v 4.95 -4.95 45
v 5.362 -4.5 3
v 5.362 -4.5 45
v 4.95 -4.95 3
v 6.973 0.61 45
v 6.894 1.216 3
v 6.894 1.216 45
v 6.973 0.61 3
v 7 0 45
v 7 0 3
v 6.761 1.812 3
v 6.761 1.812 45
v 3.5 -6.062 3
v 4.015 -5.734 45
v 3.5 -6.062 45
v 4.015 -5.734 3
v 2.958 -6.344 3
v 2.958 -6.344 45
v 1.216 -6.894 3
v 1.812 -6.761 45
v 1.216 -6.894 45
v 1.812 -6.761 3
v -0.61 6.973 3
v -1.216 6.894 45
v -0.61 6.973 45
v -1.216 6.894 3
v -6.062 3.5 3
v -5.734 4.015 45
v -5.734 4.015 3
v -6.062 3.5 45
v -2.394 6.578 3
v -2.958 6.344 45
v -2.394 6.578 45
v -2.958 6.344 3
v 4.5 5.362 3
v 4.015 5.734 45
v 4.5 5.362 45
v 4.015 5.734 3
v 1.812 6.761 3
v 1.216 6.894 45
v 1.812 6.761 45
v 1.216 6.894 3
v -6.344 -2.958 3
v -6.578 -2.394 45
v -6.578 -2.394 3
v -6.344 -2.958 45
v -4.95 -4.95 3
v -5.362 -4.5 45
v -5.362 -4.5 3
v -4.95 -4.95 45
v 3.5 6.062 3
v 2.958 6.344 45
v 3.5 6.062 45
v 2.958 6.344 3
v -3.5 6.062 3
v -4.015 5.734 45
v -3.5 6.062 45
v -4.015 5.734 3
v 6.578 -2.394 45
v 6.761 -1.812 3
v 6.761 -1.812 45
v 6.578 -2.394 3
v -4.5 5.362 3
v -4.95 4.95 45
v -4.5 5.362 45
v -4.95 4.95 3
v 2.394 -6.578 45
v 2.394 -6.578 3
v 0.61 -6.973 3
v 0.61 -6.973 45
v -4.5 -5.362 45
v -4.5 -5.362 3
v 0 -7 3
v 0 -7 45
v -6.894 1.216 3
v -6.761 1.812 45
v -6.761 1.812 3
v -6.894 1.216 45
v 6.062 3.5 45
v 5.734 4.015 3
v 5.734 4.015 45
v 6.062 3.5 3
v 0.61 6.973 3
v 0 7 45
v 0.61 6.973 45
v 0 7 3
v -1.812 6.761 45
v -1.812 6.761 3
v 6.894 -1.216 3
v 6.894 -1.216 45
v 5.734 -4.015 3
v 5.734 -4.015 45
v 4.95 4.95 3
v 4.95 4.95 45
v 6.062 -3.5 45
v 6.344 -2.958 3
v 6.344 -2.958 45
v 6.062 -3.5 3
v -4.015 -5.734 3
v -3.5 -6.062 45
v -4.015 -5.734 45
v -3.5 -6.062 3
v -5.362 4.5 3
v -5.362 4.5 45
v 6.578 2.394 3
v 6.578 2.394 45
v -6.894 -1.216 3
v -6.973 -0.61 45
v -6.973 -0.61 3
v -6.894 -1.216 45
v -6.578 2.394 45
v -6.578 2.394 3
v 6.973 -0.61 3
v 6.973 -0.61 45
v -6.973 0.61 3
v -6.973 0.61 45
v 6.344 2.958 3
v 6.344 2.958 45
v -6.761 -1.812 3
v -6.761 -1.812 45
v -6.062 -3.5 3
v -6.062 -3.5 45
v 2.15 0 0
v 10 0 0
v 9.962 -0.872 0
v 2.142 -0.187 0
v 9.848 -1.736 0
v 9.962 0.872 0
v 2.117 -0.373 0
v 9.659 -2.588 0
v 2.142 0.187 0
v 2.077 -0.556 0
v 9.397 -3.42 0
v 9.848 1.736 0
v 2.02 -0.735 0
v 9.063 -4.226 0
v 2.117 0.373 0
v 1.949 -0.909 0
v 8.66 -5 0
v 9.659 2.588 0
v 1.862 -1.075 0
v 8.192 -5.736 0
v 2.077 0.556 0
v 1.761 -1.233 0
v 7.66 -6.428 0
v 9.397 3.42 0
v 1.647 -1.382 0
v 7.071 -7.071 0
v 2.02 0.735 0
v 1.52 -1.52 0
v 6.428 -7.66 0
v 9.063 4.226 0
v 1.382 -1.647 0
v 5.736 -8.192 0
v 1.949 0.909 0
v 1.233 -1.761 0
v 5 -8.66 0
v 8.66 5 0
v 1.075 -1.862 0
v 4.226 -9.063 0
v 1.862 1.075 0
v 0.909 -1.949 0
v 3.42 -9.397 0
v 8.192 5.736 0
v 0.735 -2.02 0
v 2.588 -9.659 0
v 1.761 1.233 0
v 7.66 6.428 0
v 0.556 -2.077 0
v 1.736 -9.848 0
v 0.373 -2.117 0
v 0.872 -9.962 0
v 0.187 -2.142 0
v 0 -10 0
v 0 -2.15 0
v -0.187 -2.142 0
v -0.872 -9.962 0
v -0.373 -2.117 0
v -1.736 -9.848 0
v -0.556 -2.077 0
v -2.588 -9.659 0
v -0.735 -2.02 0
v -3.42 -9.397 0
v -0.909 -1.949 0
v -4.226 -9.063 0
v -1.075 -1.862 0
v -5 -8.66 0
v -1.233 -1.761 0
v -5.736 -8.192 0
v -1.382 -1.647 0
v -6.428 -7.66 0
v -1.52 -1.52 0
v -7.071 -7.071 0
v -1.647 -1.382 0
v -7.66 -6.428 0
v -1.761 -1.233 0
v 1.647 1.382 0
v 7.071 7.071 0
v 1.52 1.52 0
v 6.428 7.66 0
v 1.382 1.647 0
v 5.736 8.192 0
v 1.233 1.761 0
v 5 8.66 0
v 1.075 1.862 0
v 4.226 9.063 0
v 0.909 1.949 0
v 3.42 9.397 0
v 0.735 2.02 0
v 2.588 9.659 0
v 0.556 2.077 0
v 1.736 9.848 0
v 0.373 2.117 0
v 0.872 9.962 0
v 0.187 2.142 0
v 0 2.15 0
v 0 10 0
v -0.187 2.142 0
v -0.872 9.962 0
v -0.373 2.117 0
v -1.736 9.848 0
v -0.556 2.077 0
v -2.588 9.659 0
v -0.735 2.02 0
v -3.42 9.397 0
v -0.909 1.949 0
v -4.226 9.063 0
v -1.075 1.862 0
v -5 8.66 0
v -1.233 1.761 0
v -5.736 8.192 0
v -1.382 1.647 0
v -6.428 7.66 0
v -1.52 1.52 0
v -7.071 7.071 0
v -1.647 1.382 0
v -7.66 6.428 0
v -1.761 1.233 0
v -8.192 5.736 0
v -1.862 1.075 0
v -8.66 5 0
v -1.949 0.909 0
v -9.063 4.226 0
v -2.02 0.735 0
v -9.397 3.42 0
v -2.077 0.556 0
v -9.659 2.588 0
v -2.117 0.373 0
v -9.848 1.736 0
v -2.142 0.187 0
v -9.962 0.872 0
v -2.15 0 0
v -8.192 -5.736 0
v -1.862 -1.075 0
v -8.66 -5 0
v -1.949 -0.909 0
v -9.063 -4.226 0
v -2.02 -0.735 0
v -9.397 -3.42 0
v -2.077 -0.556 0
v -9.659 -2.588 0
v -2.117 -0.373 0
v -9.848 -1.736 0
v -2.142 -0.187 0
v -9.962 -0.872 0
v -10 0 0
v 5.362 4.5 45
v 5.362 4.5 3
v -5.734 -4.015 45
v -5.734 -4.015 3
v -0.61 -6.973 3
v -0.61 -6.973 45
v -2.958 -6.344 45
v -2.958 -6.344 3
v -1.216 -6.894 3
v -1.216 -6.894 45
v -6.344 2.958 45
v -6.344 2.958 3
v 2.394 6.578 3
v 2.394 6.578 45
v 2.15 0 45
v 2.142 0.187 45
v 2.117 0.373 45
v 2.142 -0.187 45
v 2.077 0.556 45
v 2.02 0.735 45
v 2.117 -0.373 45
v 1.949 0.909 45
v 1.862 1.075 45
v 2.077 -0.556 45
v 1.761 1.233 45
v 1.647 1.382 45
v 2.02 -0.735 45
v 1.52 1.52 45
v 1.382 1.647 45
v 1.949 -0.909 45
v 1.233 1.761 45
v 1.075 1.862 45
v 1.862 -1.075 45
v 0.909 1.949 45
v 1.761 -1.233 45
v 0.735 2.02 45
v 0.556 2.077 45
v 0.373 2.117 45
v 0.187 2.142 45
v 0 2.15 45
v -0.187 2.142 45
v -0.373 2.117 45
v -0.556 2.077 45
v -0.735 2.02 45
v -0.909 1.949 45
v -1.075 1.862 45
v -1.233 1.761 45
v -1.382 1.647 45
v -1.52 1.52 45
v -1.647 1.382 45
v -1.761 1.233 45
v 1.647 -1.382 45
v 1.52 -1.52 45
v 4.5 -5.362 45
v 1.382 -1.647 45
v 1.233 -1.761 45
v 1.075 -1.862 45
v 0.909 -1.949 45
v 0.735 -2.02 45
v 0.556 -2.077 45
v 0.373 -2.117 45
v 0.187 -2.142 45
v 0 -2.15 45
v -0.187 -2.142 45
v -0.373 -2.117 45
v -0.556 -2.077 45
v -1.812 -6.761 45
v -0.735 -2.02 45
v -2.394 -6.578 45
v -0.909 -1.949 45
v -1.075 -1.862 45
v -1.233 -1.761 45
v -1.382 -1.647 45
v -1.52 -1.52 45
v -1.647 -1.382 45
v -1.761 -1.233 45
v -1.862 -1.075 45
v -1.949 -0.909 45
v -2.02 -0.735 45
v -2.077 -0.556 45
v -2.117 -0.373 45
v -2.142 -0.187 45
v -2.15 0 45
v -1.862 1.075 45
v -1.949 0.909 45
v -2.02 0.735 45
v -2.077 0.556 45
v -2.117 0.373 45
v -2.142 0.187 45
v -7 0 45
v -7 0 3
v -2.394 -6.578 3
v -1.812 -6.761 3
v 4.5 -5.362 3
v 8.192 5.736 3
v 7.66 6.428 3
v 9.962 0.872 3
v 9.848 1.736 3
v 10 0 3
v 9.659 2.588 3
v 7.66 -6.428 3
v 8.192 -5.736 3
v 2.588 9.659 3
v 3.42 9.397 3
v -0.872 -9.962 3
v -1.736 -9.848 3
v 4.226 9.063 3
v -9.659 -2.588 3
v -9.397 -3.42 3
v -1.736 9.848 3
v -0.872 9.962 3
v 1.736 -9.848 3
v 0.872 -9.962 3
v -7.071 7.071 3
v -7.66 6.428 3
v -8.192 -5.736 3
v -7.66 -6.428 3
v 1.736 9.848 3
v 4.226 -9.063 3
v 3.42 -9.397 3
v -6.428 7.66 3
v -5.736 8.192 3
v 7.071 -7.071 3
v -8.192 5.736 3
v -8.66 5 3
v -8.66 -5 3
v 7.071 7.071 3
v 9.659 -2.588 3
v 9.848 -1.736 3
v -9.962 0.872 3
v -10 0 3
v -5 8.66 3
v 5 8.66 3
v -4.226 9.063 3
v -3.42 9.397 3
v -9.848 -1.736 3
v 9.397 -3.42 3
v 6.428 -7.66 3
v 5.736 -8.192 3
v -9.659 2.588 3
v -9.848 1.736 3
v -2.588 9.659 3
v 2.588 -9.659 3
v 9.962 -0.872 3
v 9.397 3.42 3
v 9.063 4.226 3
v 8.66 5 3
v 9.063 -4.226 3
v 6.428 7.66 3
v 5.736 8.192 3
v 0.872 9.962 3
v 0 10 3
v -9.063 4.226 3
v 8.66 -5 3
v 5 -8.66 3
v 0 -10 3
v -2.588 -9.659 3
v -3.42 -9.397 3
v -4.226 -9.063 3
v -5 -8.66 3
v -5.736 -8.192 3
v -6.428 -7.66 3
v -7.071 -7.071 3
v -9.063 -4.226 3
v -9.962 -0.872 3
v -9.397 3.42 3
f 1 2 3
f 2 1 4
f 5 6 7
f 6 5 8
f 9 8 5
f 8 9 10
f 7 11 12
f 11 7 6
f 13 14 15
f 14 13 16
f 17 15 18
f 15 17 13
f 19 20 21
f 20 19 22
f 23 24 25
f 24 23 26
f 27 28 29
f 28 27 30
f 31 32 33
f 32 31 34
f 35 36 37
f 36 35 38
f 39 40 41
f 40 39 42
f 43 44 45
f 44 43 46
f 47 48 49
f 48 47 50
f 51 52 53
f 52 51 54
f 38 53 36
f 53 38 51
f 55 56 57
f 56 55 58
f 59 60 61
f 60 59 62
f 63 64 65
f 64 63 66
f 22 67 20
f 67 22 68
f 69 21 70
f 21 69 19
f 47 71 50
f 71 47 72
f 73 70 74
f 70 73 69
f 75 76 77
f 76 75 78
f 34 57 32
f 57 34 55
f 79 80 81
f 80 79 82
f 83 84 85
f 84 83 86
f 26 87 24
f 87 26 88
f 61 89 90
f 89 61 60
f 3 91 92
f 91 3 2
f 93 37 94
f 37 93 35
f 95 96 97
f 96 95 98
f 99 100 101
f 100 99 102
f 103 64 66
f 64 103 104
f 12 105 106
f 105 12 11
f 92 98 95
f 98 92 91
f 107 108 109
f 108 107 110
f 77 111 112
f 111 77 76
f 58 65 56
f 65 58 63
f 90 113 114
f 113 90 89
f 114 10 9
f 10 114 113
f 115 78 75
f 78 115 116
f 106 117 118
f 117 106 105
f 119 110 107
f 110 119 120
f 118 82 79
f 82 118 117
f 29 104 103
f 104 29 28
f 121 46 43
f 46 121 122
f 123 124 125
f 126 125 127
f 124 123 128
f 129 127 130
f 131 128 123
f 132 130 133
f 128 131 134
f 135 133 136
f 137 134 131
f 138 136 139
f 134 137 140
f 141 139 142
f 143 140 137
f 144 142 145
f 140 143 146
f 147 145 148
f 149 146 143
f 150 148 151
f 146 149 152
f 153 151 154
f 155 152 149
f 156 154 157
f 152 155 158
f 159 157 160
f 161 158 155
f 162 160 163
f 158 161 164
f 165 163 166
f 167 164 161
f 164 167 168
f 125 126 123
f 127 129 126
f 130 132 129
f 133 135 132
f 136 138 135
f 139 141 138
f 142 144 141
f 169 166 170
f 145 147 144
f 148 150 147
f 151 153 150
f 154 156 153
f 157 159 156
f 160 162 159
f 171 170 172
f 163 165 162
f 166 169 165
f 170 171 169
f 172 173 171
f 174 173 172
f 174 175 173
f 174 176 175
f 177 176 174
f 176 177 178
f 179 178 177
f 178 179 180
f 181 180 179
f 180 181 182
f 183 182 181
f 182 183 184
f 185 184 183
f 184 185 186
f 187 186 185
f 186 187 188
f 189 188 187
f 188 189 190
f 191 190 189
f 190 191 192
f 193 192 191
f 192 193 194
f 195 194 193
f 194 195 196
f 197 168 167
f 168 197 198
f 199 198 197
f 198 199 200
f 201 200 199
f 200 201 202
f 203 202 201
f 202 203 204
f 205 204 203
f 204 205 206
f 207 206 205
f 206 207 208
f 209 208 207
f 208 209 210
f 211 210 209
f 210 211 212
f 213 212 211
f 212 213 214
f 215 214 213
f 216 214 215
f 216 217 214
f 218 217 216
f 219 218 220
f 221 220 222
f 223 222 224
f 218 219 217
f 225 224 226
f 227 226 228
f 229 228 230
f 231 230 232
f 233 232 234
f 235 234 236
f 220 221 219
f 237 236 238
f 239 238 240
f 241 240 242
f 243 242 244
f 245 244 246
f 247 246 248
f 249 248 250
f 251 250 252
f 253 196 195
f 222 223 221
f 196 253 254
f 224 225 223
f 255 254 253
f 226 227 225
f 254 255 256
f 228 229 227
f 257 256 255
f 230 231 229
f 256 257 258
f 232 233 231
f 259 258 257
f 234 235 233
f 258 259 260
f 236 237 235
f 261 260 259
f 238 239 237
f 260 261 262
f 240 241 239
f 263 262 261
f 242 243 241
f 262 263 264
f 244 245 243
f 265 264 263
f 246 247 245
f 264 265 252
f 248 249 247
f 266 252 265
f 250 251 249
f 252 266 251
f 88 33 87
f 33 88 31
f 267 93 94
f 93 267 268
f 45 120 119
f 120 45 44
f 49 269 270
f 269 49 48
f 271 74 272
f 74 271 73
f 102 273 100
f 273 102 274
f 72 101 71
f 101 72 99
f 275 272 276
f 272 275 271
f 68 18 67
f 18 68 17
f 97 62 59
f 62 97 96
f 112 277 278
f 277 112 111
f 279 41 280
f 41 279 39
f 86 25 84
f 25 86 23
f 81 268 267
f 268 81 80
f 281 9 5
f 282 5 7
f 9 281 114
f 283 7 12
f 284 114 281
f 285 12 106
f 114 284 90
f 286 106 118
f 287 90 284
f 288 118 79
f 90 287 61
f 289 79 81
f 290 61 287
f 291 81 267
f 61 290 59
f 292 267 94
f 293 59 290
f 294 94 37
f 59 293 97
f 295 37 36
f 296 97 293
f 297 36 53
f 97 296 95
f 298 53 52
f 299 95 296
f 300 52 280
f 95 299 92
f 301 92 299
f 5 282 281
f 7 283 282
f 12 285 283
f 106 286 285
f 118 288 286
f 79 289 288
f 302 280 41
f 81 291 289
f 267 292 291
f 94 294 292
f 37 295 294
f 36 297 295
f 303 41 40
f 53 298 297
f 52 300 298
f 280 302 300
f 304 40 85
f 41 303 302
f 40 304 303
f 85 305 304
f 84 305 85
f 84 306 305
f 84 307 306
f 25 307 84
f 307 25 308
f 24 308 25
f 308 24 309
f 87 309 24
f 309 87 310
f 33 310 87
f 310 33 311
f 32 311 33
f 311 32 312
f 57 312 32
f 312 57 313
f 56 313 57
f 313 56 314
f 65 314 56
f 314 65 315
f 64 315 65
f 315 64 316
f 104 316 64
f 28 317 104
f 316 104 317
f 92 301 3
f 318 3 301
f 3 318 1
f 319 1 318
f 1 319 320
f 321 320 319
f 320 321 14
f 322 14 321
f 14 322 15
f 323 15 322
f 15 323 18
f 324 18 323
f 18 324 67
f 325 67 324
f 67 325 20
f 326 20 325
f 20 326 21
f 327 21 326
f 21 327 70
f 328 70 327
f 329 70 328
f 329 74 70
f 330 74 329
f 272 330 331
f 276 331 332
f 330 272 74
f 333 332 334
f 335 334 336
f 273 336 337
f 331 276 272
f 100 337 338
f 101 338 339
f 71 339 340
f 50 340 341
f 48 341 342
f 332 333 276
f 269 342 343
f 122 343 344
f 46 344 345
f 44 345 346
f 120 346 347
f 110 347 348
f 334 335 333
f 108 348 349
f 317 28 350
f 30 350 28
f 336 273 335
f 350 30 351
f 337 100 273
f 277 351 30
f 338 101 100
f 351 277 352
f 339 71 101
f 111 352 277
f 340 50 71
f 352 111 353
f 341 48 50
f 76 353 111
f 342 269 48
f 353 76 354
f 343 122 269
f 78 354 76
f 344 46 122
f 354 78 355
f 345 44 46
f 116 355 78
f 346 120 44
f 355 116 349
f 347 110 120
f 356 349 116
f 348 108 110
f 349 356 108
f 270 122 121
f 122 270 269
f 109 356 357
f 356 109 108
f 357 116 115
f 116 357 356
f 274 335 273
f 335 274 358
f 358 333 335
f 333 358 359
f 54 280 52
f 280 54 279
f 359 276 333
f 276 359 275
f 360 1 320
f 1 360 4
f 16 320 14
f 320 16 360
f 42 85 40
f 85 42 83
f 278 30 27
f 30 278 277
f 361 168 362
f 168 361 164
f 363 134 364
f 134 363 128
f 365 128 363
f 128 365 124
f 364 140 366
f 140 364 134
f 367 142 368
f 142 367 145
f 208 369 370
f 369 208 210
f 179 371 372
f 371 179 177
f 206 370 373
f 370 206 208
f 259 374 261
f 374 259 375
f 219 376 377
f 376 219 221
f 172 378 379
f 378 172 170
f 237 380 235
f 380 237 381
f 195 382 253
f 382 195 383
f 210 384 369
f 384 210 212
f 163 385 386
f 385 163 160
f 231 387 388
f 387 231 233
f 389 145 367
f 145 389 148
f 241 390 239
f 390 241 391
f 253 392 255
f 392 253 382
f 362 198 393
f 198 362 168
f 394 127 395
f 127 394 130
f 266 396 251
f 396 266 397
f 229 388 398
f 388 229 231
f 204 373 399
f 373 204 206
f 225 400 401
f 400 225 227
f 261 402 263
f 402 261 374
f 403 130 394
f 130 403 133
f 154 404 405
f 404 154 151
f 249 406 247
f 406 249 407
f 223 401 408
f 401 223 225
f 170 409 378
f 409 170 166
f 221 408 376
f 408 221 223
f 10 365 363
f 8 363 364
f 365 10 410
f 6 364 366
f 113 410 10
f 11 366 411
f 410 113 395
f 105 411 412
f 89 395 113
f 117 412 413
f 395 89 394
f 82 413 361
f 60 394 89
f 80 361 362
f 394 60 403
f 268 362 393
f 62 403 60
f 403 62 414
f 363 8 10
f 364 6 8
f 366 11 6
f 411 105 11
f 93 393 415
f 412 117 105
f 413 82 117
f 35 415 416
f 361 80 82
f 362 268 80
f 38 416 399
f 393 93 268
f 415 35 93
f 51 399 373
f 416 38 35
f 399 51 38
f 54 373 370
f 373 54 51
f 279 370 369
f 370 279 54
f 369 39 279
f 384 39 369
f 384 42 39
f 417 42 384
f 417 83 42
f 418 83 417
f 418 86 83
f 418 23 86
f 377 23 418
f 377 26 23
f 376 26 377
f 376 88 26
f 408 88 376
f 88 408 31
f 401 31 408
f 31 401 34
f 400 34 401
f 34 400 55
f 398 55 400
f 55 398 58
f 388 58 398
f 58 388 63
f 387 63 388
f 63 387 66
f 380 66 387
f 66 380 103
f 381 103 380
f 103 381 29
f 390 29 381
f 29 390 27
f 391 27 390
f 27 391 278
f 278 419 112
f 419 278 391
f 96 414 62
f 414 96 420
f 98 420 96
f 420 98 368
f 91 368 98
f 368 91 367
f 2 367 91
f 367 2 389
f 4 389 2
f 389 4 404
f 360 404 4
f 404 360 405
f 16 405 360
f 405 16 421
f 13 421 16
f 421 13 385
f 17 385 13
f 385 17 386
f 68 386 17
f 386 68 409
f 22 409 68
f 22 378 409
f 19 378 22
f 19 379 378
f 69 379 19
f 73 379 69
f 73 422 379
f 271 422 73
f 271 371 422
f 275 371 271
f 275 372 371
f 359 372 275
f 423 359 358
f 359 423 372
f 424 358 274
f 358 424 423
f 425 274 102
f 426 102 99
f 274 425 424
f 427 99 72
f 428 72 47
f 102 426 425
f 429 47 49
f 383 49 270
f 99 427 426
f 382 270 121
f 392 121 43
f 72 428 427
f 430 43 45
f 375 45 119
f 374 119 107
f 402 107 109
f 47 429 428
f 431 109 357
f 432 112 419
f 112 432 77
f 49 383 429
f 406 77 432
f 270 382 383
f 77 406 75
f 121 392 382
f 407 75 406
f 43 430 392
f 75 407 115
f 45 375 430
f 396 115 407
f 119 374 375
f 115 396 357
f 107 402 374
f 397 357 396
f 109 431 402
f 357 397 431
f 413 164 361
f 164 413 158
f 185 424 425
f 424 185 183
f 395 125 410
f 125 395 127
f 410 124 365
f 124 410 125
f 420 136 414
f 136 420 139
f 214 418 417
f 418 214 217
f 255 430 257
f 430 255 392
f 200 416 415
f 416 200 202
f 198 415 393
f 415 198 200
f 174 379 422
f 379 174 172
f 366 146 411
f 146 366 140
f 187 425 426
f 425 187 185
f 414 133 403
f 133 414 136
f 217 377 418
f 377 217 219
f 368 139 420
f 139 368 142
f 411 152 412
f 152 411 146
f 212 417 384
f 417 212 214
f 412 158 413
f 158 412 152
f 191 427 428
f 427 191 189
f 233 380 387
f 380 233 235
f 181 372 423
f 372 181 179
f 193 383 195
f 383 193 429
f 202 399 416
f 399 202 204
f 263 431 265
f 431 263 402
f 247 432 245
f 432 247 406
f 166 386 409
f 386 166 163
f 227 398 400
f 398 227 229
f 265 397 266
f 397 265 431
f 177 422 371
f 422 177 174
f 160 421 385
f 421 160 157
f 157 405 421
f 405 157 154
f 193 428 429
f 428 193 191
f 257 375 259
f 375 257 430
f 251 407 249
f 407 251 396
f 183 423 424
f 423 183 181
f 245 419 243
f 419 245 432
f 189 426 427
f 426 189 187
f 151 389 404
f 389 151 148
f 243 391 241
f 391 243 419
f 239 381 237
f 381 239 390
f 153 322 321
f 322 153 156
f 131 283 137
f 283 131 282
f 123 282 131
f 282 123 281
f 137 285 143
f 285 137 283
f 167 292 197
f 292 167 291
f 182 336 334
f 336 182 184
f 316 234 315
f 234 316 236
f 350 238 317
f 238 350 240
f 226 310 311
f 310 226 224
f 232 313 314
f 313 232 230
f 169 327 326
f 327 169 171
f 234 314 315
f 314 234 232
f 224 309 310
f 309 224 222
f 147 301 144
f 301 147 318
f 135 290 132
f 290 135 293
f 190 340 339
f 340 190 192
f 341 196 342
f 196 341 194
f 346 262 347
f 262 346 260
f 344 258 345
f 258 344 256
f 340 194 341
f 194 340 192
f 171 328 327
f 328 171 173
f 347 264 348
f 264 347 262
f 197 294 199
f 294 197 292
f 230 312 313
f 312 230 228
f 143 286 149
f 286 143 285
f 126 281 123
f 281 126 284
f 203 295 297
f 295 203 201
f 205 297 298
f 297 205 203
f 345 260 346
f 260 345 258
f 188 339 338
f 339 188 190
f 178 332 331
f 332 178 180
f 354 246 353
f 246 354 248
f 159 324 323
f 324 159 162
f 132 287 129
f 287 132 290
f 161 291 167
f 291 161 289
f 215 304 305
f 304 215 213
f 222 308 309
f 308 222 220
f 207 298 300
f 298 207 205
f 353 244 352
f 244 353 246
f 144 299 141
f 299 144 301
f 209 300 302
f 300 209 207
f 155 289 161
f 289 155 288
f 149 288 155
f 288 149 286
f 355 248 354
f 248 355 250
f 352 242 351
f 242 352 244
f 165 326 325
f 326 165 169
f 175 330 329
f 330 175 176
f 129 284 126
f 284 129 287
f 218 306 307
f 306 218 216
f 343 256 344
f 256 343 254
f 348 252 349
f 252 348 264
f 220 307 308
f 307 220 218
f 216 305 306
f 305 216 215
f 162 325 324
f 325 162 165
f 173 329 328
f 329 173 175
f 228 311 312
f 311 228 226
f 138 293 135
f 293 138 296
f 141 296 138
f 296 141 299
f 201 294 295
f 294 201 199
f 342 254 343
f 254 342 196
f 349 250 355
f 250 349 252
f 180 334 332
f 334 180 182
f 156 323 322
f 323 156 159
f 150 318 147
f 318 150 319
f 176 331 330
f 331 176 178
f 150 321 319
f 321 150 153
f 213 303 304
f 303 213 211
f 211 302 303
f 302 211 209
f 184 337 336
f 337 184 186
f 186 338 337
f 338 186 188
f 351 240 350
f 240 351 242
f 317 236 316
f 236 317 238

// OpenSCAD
// file: parameters.scad
// AFPM-Desk-v2 shared parameters (mm)
// Dual-rotor axial-flux PM learning generator with steel back-iron.
// Faraday induction education only — not free-energy / overunity.
// Target printer: Anycubic Kobra 3 Max, 0.4 mm nozzle, 0.2 mm layers, PLA/PETG.

$fn = 72;

// --- Printer / FDM assumptions ---
nozzle = 0.4;
layer = 0.2;
wall = 1.6;                 // load-bearing walls ~4 perimeters
housing_wall = 2.4;
clearance_slip = 0.35;      // shaft slip fit
clearance_loose = 0.55;
press_interference = 0.15;  // bearing pocket undersize total (coupon-test)
magnet_pocket_xy = 0.25;    // +0.25 mm on diameter
magnet_pocket_z = 0.15;     // +0.15 mm depth
elephant_foot = 0.5;

// --- Magnets (N42 Neo discs) ---
magnet_d = 20;
magnet_h = 3;
magnet_count = 8;           // per rotor (8+8 total)
magnet_pcd = 70;

// --- Steel back-iron (purchased mild steel disc) ---
steel_od = 100;
steel_id = 14;              // clearance around hub boss
steel_h = 1.5;              // 1.5–2.0 mm mild steel OK
steel_recess_clearance = 0.3;

// --- Rotor printed disc ---
rotor_od = 110;
rotor_hub_bore = 12;        // seats on shaft_hub boss
rotor_thickness = 7;        // magnet pocket from face; steel recess on back
magnet_pocket_depth = magnet_h + magnet_pocket_z;
steel_recess_depth = steel_h + 0.2;

// --- Stator (coreless, between rotors) ---
stator_od = 120;
stator_id = 28;
stator_thickness = 10;
coil_count = 6;
coil_slot_w = 24;
coil_slot_l = 30;           // radial length of pocket
coil_slot_depth = 8;
coil_pcd = 70;
stator_pillar_pcd = 100;    // M4 pillar holes

// --- Coil former / bobbin ---
former_core_w = 14;
former_core_l = 26;
former_flange = 3;
former_wind_h = 11;
former_bore = 0;            // solid core, split design via kerf

// --- Shaft / bearings ---
shaft_d = 8;
bearing_od = 22;            // 608-2RS
bearing_id = 8;
bearing_h = 7;
bearing_seat_od = bearing_od - press_interference; // coupon-test; start ~21.85

// --- Base / frame ---
base_w = 180;
base_d = 160;
base_h = 8;
post_h = 70;
post_spacing = 120;         // Y distance between bearing post centers
post_d = 36;

// --- Axial stack targets (along shaft / Y) ---
// crank | brg | hub+rotorA+steel | air | stator | air | steel+rotorB+hub | brg
air_gap_nominal = 2.0;      // mechanical per side magnet↔coil face

// --- Crank ---
crank_arm_len = 85;
crank_arm_w = 18;
crank_arm_t = 10;
handle_d = 14;
handle_len = 45;

// --- Electronics tray ---
tray_w = 75;
tray_d = 55;
tray_h = 14;

// --- Fasteners ---
m3_clear = 3.4;
m3_tap = 2.5;
m4_clear = 4.3;
// main file
include <parameters.scad>

module crank_handle() {
  difference() {
    union() {
      cylinder(h=handle_len, d=handle_d);
      // flange
      cylinder(h=3, d=handle_d + 6);
    }
    translate([0,0,-0.1])
      cylinder(h=handle_len+0.2, d=m4_clear);
  }
}

crank_handle();
